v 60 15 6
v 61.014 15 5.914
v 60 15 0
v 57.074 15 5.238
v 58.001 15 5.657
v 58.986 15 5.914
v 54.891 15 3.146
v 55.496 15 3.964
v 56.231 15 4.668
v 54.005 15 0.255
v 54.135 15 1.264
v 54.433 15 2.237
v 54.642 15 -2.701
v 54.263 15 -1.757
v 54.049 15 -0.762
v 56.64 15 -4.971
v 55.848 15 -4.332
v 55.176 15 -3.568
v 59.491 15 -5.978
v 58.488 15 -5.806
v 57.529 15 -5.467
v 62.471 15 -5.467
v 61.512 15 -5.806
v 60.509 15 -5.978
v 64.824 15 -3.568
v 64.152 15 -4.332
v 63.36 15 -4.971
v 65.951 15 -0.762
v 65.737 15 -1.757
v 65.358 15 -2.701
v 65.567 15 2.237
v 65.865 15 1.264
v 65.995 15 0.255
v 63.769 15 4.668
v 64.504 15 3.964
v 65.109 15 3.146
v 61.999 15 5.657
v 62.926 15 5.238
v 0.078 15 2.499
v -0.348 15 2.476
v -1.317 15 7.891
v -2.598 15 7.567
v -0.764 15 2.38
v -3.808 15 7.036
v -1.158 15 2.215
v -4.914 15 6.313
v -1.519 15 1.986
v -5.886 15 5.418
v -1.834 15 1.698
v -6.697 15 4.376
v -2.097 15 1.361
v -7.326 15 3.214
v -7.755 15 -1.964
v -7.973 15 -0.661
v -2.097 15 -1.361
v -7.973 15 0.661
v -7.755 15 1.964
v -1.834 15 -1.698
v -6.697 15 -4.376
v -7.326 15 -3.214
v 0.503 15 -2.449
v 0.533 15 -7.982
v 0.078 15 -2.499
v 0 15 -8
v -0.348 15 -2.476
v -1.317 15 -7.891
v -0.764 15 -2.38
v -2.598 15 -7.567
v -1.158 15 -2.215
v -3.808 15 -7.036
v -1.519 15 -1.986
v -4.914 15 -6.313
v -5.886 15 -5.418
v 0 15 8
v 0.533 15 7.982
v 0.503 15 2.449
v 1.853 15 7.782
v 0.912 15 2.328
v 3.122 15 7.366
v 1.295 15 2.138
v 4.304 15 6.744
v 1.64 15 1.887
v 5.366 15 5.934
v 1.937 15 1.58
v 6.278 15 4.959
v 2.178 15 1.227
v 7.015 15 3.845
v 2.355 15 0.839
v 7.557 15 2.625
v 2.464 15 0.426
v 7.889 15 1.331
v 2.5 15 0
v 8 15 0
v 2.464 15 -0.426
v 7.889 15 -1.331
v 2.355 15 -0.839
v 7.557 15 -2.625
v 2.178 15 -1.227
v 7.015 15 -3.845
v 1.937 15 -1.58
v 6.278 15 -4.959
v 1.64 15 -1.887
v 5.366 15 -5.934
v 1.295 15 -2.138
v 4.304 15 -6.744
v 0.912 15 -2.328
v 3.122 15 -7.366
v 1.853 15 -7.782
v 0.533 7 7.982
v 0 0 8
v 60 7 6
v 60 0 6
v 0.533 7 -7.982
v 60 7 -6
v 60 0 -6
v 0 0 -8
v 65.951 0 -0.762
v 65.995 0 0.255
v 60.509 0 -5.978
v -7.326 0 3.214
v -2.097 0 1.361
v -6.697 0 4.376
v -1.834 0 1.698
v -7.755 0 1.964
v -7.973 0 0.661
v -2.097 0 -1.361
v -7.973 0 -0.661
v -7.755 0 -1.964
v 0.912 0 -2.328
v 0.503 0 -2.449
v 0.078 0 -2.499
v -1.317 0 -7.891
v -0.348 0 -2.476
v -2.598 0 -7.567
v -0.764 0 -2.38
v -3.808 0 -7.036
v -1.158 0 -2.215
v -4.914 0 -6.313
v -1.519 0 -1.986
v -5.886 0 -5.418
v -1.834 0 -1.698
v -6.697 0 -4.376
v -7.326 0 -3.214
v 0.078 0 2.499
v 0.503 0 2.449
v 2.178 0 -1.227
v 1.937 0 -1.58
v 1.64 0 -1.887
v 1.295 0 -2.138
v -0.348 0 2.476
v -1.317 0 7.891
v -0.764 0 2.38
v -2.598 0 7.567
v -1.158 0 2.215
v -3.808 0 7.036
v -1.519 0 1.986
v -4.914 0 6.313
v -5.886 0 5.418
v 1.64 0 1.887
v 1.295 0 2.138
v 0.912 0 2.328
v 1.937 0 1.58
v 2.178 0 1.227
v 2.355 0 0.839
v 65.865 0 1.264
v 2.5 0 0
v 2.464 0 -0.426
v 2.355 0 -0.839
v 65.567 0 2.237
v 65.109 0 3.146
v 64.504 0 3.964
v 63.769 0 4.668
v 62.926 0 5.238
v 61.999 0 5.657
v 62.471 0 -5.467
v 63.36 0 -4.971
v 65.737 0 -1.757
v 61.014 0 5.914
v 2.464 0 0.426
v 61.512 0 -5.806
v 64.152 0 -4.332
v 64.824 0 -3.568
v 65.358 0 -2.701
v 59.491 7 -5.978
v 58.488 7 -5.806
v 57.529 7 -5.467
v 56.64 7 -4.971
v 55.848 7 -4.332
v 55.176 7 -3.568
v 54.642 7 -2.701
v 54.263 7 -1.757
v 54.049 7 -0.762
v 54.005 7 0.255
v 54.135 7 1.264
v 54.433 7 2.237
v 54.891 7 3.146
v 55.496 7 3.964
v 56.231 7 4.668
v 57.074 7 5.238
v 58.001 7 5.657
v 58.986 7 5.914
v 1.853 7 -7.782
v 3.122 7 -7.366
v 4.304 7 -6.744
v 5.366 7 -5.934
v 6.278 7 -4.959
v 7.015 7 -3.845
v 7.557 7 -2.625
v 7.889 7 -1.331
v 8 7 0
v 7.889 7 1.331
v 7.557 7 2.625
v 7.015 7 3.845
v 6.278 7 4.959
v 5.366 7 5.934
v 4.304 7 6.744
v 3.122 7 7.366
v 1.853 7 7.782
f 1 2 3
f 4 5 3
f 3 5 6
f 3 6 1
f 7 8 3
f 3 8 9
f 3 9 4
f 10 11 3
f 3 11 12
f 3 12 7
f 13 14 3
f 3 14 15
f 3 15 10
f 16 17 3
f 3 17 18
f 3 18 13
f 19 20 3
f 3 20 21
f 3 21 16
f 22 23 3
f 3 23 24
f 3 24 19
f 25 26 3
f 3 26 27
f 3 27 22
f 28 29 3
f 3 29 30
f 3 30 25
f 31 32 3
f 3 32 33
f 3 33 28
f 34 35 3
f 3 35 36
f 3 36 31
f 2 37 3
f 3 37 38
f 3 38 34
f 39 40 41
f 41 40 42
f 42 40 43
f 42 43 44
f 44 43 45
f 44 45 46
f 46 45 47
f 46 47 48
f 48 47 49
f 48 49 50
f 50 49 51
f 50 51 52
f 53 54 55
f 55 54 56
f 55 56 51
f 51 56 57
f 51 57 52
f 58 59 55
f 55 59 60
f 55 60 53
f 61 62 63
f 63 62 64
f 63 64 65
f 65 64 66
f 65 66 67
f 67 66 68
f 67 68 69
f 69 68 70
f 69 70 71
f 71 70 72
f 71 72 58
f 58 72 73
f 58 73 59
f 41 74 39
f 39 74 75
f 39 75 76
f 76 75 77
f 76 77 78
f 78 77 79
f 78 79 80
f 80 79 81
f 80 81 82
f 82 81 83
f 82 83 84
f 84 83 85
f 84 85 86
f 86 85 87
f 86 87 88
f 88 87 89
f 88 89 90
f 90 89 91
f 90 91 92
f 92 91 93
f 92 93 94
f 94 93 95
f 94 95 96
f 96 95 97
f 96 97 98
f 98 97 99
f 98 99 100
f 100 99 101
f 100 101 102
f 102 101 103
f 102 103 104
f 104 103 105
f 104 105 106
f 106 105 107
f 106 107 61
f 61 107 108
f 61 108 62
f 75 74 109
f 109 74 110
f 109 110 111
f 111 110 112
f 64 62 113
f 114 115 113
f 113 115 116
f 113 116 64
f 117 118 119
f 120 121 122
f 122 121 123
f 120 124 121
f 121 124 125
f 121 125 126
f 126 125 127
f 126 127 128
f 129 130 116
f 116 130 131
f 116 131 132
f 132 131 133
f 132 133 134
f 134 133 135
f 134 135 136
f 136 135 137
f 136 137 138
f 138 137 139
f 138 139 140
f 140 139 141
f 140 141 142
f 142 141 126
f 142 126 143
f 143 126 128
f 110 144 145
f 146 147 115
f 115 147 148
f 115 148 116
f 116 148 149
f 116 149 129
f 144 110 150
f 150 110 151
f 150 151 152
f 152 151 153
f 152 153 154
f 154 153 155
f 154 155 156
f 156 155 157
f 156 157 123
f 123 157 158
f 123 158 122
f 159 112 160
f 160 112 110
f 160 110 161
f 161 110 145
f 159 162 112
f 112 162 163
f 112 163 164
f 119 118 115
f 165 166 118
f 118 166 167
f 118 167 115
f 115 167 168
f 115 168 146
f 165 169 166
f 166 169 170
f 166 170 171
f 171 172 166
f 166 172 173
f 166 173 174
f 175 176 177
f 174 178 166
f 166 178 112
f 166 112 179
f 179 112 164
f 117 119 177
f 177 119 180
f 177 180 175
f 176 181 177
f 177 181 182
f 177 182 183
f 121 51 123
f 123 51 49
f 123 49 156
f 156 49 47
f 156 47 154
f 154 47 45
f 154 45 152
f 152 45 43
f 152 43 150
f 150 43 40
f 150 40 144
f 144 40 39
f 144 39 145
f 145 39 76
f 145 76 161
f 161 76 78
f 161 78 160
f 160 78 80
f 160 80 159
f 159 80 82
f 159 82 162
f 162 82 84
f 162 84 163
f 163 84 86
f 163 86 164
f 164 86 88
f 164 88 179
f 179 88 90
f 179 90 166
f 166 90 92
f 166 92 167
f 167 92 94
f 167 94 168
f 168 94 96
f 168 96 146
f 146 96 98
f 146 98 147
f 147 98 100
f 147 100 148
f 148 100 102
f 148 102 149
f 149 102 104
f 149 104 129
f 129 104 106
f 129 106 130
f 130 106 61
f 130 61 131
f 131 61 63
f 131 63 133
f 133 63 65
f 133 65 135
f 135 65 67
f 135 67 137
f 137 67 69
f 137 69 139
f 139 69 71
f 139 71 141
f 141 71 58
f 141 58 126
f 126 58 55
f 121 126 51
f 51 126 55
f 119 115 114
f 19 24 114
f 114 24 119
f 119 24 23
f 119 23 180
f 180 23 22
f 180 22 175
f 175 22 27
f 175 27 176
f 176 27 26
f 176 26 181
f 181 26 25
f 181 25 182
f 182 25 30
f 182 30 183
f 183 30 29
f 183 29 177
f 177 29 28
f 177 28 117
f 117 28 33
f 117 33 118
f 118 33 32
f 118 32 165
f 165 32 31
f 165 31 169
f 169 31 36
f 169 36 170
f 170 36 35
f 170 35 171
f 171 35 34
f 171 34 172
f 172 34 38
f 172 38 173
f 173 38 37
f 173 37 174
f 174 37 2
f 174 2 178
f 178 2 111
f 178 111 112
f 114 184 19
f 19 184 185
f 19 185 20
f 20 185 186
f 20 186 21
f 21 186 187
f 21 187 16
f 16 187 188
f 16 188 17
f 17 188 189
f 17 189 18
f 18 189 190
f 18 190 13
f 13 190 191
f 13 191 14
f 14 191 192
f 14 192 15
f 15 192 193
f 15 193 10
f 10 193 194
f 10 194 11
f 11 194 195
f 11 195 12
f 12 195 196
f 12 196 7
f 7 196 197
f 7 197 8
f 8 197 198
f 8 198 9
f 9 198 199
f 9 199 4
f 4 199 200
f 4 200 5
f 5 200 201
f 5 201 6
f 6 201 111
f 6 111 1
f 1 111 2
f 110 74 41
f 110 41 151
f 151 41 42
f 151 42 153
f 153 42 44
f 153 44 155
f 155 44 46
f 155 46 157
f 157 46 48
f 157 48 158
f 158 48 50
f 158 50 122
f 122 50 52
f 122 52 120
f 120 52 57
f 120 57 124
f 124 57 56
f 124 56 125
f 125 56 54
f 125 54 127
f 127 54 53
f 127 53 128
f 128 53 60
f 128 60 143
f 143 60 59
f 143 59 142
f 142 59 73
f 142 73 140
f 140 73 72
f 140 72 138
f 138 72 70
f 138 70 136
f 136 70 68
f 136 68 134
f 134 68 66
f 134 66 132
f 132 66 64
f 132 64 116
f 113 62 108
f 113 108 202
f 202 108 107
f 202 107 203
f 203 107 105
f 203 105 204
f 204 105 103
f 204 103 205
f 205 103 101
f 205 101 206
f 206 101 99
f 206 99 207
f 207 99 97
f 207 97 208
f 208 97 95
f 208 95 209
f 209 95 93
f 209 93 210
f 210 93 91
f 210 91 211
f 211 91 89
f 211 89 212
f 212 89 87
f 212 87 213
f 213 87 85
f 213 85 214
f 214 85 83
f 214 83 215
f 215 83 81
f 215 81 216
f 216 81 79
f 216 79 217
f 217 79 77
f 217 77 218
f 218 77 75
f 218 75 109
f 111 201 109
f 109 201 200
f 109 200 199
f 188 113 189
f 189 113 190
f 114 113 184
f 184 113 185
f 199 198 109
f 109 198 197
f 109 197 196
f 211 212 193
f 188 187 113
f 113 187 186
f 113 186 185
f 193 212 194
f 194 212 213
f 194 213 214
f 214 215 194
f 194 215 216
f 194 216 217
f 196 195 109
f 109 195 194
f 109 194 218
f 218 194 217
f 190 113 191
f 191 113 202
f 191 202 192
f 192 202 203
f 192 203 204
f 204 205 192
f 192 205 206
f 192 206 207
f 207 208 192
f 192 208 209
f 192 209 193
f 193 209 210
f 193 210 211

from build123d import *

# Parameters (mm, degrees)
SKETCH1_R           = 5
BOSS_EXTRUDE1_DEPTH = 15
CUT_EXTRUDE1_DEPTH  = 17.583123952
SKETCH3_R           = 3.558152216
BOSS_EXTRUDE2_DEPTH = 15
CUT_EXTRUDE3_DEPTH  = 8


with BuildPart() as part:
    # Sketch1 → Boss-Extrude1 (new body)
    with BuildSketch(Plane(origin=(0, 0, 0), x_dir=(1, 0, 0), z_dir=(0, 1, 0))):
        with Locations(Location((0, 0, 0), (0, 0, 270))):
            Circle(SKETCH1_R)
    extrude(amount=BOSS_EXTRUDE1_DEPTH)

    # Sketch2 → Cut-Extrude1 (cut, through all)
    with BuildSketch(Plane(origin=(0, 15, 0), x_dir=(1, 0, 0), z_dir=(0, 1, 0))):
        with BuildLine():
            Line((-2.096780408, 1.361437447), (-2.096780408, -1.361437447))
            ThreePointArc((-2.096780408, -1.361437447), (2.5, 0), (-2.096780408, 1.361437447))
        make_face()
    extrude(amount=-CUT_EXTRUDE1_DEPTH, mode=Mode.SUBTRACT)

    # Sketch3 → Boss-Extrude2 (add)
    with BuildSketch(Plane(origin=(0, 15, 0), x_dir=(1, 0, 0), z_dir=(0, 1, 0))):
        with BuildLine():
            Line((0, 8), (60, 6))
            ThreePointArc((60, 6), (66, 0), (60, -6))
            Line((60, -6), (0, -8))
            ThreePointArc((0, -8), (-8, 0), (0, 8))
        make_face()
        Circle(SKETCH3_R, mode=Mode.SUBTRACT)
    extrude(amount=-BOSS_EXTRUDE2_DEPTH)

    # Sketch5 → Cut-Extrude3 (cut)
    with BuildSketch(Plane(origin=(0, 15, 0), x_dir=(1, 0, 0), z_dir=(0, 1, 0))):
        with BuildLine():
            Line((60, 6), (0.532741398, 7.982241953))
            ThreePointArc((0.532741398, 7.982241953), (8, 0), (0.532741398, -7.982241953))
            Line((0.532741398, -7.982241953), (60, -6))
            ThreePointArc((60, -6), (54, 0), (60, 6))
        make_face()
    extrude(amount=-CUT_EXTRUDE3_DEPTH, mode=Mode.SUBTRACT)


solid = part.part
